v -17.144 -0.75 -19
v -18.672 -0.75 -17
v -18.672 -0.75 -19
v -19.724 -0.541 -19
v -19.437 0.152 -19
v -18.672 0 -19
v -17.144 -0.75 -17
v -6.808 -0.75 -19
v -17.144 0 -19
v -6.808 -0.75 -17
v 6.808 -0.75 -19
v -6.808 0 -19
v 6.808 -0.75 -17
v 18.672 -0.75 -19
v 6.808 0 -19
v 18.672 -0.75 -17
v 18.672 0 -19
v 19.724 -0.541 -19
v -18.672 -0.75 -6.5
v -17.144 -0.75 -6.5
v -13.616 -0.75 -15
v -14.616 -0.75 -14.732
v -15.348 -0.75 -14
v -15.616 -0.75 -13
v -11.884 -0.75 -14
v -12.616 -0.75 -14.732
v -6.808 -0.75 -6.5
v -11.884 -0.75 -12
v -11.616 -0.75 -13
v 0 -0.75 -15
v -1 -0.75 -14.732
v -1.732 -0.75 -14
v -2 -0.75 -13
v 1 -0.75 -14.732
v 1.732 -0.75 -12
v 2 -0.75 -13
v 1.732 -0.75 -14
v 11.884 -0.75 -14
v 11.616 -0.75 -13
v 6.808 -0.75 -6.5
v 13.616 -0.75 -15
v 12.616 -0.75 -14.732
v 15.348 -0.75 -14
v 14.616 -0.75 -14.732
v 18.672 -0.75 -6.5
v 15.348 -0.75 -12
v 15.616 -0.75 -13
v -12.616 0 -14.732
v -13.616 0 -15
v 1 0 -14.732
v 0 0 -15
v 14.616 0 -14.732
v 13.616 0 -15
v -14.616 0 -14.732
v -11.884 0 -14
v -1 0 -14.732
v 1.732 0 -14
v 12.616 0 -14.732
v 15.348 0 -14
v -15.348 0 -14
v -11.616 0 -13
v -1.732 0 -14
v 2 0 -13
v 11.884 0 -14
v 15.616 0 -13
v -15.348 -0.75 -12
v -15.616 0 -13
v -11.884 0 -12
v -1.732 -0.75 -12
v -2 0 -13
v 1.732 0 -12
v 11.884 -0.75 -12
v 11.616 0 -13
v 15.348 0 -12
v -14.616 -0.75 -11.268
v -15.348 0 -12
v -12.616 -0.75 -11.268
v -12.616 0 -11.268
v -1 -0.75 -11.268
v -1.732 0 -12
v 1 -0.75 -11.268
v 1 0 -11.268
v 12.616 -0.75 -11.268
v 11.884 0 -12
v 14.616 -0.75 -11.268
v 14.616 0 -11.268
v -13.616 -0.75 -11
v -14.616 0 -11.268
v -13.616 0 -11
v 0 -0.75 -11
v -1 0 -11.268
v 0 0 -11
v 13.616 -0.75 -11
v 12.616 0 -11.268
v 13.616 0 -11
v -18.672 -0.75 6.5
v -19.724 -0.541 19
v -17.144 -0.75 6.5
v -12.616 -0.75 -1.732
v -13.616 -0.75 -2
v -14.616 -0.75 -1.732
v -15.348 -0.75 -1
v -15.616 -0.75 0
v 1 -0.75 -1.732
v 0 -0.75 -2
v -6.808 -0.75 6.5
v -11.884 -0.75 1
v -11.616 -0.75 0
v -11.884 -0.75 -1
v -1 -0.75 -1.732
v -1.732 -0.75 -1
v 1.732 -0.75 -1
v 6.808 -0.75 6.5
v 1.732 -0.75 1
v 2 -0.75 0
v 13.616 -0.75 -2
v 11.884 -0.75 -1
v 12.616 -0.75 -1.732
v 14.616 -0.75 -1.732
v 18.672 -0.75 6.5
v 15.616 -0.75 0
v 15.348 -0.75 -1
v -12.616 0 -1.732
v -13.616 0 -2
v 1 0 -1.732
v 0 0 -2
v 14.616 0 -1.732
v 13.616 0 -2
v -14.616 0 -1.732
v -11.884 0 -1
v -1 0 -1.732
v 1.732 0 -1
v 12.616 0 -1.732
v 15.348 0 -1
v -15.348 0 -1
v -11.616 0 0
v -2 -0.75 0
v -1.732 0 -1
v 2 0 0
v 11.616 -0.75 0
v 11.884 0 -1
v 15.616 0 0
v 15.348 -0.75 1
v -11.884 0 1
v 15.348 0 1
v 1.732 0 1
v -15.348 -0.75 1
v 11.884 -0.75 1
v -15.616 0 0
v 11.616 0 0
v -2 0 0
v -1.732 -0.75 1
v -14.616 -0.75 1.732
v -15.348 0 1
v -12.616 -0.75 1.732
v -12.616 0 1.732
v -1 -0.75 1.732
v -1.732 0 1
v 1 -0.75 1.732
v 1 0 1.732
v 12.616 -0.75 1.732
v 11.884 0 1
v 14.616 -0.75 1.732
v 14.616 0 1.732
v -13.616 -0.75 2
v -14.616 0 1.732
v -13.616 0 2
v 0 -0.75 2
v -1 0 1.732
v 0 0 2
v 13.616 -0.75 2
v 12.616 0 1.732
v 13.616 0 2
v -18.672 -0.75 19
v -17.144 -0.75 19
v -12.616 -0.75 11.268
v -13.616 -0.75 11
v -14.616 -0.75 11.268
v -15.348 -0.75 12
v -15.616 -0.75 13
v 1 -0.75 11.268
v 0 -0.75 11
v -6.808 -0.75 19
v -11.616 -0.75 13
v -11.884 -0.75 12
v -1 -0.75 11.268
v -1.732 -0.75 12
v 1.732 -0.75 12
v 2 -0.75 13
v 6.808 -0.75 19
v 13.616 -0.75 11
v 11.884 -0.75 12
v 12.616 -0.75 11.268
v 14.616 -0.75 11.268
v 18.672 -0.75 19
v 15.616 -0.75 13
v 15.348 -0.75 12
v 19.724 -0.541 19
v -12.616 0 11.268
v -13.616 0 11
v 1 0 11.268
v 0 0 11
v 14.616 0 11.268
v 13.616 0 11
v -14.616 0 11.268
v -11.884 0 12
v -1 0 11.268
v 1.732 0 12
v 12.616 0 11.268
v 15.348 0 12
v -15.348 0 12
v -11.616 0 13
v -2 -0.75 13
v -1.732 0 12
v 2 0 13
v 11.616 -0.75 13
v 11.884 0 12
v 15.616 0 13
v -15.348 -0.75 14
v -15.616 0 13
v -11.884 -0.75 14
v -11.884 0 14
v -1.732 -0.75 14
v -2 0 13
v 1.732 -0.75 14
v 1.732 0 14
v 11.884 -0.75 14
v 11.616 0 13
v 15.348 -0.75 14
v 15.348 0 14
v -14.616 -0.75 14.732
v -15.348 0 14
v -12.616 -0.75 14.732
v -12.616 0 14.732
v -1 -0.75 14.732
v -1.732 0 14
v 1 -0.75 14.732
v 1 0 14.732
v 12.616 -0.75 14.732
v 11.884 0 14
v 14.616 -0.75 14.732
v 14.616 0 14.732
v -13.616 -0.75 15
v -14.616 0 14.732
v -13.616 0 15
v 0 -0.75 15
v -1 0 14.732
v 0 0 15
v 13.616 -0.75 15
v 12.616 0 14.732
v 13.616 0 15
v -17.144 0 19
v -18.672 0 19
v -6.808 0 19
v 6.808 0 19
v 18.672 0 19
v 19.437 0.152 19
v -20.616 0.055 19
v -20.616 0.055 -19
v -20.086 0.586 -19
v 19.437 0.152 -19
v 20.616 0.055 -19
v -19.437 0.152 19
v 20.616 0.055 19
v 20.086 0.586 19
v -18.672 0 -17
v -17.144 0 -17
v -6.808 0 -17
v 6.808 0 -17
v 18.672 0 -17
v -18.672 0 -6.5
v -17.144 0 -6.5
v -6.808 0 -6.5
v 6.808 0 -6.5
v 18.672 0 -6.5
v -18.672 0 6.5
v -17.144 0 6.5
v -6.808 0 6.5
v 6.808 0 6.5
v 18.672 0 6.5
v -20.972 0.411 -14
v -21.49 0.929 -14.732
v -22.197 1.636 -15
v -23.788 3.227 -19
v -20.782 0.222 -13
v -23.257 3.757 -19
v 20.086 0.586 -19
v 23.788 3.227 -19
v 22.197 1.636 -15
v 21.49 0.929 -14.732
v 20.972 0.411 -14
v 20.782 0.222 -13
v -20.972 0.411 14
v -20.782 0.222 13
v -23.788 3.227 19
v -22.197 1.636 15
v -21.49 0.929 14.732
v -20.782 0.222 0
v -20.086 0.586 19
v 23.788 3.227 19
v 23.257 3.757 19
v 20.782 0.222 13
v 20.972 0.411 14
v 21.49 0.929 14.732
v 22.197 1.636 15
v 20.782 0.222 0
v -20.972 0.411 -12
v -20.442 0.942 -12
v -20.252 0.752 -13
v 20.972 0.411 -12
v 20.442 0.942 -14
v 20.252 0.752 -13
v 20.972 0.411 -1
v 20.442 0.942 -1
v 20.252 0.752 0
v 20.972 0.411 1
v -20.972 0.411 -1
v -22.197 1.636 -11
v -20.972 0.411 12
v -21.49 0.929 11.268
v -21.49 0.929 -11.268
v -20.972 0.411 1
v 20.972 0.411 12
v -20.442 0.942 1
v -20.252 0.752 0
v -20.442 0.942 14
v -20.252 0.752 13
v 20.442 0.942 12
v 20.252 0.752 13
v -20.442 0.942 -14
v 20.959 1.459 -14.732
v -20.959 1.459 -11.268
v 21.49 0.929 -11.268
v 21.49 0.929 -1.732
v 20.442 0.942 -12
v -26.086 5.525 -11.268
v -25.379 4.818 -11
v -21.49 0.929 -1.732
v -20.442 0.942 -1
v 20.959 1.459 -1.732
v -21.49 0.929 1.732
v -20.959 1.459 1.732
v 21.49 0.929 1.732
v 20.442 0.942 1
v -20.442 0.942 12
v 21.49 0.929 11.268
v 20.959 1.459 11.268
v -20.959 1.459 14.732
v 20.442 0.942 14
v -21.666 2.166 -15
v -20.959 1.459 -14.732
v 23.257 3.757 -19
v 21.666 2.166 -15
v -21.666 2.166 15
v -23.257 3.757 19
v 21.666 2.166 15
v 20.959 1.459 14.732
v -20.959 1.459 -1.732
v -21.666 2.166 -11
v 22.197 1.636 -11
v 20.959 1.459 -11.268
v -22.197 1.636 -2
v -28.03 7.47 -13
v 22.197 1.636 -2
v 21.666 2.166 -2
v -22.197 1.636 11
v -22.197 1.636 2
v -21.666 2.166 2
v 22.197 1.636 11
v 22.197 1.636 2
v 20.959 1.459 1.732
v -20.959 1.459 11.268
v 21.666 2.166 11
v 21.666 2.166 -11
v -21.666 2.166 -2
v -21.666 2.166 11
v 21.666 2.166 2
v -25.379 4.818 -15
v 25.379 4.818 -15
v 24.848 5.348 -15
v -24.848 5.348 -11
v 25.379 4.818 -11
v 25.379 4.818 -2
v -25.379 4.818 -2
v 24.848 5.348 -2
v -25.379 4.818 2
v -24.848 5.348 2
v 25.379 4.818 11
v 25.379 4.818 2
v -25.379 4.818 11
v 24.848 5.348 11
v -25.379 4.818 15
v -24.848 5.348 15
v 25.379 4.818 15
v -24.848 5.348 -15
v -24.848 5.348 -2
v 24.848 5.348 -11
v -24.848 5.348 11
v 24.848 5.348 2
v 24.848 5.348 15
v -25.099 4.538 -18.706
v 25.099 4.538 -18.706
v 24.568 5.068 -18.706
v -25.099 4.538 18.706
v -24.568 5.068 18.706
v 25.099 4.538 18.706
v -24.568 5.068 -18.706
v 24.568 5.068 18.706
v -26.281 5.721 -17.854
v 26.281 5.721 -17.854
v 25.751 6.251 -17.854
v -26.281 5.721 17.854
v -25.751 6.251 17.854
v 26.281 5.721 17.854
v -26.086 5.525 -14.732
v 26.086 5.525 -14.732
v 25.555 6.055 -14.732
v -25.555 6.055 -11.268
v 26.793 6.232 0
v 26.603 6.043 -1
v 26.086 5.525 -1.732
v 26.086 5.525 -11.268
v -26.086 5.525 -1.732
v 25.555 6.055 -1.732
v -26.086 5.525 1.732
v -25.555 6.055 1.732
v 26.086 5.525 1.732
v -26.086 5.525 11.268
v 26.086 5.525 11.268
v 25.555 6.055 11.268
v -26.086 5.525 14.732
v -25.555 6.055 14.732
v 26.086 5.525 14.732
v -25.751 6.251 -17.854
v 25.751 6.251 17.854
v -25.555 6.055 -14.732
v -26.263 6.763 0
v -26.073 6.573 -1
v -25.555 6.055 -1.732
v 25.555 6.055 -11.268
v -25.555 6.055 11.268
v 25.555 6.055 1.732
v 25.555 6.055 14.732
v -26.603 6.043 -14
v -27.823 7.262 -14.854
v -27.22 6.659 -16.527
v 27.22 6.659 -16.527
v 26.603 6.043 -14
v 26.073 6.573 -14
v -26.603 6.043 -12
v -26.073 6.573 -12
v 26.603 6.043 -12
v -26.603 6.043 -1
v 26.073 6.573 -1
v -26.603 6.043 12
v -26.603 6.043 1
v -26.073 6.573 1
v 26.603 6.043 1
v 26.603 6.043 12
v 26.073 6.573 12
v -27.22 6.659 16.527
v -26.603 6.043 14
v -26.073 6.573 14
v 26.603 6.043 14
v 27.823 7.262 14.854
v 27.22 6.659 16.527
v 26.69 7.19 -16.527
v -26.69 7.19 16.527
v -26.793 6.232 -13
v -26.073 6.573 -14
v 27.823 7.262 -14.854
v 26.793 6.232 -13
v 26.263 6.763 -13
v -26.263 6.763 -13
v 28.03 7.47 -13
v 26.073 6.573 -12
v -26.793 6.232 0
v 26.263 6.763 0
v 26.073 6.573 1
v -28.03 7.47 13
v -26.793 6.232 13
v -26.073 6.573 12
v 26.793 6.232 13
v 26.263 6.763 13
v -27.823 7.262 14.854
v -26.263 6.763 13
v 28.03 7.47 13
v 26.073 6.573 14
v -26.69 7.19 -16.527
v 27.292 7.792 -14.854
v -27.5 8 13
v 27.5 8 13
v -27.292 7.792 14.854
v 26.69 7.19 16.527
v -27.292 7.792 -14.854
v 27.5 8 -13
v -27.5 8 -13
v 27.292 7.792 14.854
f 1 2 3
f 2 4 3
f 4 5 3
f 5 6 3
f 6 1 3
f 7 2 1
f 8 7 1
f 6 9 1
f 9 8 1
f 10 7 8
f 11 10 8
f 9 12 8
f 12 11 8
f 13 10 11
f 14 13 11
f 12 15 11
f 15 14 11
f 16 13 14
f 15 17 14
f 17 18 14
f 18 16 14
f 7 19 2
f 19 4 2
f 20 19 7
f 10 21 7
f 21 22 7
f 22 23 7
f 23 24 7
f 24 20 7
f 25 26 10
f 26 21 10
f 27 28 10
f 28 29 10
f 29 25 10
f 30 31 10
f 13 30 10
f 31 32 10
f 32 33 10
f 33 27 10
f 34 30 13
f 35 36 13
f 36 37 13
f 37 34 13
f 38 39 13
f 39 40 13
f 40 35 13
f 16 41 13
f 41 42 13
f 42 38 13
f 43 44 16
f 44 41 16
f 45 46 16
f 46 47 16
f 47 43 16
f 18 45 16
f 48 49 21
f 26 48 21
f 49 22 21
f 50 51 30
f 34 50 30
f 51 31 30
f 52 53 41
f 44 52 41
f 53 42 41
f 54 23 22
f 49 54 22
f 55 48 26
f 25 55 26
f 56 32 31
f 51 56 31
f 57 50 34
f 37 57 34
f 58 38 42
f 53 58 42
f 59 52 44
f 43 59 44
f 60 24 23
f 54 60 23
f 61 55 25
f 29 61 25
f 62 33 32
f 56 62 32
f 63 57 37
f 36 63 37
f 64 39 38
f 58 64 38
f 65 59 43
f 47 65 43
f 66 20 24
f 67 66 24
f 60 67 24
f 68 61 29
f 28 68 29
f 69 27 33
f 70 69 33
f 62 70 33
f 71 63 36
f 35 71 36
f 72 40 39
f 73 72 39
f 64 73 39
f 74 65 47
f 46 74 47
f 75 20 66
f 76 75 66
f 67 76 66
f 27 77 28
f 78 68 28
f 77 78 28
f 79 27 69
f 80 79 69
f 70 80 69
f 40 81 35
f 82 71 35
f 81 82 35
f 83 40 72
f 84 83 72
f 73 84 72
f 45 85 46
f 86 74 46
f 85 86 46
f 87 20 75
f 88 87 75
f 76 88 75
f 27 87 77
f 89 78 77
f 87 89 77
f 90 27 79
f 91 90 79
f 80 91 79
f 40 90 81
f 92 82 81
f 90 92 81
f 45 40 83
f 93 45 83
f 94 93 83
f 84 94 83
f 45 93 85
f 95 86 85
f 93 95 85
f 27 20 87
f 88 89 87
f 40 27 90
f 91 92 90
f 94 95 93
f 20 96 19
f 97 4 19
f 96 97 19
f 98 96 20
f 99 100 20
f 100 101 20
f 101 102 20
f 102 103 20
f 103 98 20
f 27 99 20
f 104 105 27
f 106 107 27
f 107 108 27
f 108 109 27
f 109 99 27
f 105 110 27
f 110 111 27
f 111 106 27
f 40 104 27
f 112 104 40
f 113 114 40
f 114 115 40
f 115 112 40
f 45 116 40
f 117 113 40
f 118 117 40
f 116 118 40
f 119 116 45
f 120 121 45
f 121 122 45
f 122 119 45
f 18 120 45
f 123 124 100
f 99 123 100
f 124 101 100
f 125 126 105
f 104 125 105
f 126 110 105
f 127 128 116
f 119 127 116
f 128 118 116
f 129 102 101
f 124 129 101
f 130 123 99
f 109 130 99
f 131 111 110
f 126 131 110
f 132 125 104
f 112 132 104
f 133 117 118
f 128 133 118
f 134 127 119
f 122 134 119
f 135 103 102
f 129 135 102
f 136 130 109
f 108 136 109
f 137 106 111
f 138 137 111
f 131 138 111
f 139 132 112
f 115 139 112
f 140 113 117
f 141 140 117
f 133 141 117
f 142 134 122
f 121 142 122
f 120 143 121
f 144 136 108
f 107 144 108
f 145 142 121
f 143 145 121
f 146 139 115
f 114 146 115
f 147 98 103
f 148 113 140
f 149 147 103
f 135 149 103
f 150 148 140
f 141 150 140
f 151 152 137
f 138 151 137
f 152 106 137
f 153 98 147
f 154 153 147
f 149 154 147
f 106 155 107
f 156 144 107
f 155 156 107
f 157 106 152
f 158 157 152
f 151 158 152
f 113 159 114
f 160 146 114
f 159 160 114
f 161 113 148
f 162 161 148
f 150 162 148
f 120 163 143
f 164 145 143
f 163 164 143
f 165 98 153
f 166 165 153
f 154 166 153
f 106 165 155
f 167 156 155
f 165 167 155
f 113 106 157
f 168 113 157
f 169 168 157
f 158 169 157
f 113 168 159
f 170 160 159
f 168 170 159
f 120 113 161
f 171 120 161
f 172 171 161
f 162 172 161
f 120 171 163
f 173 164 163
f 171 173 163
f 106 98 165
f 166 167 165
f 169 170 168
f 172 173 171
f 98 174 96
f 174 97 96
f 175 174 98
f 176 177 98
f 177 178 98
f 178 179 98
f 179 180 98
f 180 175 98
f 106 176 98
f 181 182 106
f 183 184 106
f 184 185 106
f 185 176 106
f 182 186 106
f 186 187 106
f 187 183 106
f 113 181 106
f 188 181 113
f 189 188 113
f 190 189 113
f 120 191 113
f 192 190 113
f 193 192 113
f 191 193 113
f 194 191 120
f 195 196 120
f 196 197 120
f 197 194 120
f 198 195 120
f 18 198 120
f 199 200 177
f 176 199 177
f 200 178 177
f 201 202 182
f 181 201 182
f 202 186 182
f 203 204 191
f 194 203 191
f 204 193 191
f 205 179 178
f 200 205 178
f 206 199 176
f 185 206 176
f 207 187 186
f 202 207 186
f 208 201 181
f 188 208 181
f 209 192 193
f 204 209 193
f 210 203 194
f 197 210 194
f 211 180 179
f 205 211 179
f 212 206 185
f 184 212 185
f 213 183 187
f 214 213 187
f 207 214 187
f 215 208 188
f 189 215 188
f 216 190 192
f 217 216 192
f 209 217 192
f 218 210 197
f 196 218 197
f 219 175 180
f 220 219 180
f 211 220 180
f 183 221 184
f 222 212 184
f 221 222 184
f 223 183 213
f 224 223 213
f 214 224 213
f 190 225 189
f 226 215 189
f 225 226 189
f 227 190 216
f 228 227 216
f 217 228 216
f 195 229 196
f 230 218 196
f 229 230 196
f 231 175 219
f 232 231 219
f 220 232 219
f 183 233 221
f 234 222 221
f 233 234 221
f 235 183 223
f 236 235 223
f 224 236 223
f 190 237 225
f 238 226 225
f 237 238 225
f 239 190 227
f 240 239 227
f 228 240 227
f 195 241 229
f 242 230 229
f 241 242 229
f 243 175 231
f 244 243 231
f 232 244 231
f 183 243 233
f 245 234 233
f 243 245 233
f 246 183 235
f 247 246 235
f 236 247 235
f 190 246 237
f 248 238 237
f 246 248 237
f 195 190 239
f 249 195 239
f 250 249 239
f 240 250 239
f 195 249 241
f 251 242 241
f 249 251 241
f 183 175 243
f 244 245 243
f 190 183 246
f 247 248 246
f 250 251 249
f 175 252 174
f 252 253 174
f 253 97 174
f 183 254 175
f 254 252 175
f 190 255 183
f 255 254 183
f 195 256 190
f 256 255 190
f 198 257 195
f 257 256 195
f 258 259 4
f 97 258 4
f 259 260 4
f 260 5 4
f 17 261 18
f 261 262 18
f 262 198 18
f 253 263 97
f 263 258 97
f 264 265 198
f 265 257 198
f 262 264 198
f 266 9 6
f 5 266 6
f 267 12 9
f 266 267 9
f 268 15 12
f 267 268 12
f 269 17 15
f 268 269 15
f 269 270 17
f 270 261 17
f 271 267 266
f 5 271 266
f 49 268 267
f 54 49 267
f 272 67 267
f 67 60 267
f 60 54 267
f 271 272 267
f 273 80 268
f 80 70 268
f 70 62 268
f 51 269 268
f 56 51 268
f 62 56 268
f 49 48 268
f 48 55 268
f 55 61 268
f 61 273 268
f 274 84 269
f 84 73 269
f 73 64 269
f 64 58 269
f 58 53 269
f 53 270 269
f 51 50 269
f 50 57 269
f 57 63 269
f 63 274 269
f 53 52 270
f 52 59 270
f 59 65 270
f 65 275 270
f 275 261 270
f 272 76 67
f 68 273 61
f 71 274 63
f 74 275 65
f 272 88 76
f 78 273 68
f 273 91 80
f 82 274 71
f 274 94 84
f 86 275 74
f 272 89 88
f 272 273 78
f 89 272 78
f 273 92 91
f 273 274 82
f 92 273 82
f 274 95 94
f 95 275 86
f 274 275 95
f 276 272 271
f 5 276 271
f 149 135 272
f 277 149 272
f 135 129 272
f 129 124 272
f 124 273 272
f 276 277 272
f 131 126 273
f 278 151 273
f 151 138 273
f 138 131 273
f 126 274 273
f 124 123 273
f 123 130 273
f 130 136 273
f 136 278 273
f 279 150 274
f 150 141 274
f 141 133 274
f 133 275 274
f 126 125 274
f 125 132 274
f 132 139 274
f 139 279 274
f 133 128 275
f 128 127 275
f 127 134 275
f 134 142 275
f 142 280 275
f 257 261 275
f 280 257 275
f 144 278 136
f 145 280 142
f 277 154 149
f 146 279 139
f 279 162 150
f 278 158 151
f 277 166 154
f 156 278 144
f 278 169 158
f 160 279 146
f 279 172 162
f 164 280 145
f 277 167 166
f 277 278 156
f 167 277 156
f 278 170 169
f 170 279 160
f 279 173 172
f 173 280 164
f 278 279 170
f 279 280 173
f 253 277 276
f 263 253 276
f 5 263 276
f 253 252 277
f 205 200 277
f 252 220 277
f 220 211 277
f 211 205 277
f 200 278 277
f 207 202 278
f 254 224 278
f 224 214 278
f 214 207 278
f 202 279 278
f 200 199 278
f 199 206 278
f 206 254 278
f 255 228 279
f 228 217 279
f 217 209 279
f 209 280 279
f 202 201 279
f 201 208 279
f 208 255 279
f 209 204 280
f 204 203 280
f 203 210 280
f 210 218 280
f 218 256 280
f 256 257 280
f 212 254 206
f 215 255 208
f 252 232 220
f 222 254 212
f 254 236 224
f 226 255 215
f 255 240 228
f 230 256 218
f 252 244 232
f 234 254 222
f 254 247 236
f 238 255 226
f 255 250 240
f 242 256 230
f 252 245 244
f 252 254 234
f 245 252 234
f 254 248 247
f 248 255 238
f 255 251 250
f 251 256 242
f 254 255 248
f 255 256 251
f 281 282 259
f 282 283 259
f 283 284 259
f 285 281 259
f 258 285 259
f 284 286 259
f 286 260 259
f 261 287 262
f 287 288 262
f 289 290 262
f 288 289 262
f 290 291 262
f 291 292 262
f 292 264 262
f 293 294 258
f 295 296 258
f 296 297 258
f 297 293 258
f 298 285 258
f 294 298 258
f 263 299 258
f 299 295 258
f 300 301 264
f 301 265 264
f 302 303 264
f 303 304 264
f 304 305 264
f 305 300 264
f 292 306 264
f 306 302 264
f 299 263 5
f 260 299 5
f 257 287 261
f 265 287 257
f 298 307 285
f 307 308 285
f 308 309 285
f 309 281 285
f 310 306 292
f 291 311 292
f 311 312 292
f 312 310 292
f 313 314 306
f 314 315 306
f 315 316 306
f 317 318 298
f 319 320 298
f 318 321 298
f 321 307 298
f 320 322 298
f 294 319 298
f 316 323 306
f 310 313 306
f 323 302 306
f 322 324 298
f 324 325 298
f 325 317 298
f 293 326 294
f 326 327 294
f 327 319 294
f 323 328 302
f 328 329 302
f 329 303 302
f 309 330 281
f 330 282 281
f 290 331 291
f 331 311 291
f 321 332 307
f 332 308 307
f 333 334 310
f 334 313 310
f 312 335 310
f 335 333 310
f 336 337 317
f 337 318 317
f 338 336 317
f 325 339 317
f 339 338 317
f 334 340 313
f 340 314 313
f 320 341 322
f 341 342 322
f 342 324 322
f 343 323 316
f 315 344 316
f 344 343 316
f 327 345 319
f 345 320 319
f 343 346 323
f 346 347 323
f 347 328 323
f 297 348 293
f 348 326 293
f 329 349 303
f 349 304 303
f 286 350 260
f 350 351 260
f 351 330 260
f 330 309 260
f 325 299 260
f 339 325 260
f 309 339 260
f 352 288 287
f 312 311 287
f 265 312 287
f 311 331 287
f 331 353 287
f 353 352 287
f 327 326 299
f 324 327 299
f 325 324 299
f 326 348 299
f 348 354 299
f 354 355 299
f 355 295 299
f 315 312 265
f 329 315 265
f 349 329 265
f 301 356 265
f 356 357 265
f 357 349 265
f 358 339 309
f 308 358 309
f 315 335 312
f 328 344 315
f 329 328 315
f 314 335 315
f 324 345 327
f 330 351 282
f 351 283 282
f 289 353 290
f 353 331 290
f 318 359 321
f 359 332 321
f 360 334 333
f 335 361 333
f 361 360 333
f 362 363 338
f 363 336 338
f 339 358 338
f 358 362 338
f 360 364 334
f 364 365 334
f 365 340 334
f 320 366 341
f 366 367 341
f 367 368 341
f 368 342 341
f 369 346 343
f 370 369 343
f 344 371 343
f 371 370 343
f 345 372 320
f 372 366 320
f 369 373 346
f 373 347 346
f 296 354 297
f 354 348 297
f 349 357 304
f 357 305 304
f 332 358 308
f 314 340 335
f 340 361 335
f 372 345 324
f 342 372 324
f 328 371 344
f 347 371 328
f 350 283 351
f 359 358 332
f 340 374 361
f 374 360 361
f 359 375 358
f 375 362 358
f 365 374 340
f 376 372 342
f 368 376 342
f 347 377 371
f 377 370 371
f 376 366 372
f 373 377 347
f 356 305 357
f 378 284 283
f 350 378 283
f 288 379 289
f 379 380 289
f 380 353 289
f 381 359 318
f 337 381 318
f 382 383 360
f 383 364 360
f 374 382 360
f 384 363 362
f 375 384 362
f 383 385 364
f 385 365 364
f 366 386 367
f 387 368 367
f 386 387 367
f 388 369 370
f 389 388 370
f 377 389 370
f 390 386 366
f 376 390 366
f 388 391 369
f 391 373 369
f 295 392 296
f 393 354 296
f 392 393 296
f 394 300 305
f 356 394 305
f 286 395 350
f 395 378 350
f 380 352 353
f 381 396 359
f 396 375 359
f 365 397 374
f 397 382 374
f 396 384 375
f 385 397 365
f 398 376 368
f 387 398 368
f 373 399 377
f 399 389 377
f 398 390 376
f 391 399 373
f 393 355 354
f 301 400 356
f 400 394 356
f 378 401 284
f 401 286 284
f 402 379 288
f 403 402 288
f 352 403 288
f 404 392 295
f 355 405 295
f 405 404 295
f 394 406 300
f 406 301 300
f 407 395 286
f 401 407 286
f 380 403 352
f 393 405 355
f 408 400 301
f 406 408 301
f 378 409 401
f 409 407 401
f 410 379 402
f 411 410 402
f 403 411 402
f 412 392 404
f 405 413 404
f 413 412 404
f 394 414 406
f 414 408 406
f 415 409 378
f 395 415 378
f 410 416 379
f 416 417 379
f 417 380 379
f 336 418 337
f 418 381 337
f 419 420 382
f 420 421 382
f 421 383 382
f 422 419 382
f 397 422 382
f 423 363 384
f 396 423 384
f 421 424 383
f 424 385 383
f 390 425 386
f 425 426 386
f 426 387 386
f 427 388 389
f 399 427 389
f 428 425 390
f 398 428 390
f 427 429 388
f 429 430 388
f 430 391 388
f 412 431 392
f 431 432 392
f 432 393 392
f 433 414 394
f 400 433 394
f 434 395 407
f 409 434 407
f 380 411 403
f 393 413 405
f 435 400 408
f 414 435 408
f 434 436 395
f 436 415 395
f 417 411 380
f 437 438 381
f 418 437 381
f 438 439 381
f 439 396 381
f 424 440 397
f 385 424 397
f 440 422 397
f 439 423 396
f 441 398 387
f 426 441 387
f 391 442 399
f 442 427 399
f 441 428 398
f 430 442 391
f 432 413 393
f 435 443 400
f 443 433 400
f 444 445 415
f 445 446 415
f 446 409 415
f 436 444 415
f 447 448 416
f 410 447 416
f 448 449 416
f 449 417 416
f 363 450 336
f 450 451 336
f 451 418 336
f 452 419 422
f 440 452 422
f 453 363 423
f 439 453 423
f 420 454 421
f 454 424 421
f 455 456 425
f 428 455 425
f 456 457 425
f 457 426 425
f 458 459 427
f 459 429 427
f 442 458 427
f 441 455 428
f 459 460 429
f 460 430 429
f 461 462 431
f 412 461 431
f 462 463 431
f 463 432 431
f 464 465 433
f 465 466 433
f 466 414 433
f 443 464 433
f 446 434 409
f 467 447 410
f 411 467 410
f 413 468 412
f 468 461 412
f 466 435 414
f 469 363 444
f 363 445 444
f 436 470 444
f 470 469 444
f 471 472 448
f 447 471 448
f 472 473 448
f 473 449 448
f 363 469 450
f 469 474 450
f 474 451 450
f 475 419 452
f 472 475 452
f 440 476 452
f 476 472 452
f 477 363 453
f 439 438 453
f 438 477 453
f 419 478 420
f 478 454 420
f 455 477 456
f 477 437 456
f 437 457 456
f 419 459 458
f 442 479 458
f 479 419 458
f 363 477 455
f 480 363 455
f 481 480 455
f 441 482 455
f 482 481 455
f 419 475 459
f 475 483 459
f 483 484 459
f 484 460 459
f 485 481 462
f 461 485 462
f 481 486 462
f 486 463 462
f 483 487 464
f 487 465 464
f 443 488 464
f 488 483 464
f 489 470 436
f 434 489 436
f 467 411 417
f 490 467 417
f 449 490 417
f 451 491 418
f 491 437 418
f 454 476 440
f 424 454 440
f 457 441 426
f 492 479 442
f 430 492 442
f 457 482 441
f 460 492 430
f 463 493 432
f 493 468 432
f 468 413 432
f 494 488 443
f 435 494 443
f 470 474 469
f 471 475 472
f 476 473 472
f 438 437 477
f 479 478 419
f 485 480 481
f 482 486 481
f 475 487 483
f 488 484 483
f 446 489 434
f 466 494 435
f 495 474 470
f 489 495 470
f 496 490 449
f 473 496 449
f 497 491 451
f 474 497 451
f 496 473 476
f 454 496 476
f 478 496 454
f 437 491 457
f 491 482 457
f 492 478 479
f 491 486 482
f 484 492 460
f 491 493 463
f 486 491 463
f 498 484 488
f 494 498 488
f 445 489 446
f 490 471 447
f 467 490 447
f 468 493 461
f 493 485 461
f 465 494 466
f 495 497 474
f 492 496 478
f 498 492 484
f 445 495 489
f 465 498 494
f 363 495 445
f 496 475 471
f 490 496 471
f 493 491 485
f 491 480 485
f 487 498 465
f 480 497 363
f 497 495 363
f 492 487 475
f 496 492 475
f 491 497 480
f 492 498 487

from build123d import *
from build123d.topology import SkipClean

# Parameters (mm, degrees)
ESTRUSIONE_SOTTILE1_DEPTH = 19
SCHIZZO2_R                = 2
TAGLIO_ESTRUSIONE2_DEPTH  = 10
TAGLIO_ESTRUSIONE3_DEPTH  = 10
RACCORDO1_R               = 6


with BuildPart() as part:
    # Schizzo1 → Estrusione-Sottile1 (new, symmetric)
    with BuildSketch(Plane.XY):
        with BuildLine():
            Line((-27.5, 8), (-20.085786438, 0.585786438))
            ThreePointArc((-20.085786438, 0.585786438), (-19.43693974, 0.152240935), (-18.671572875, 0))
            Line((-18.671572875, 0), (0, 0))
            Line((0, 0), (0, -0.75))
            Line((0, -0.75), (-18.671572875, -0.75))
            ThreePointArc((-18.671572875, -0.75), (-19.723952314, -0.540668714), (-20.616116524, 0.055456352))
            Line((-20.616116524, 0.055456352), (-28.030330086, 7.469669914))
            Line((-28.030330086, 7.469669914), (-27.5, 8))
        make_face()
    extrude(amount=ESTRUSIONE_SOTTILE1_DEPTH, both=True)

    # Schizzo2 → Taglio-Estrusione2 (cut)
    with BuildSketch(Plane.XZ.offset(0.75)):
        with Locations(Location((-13.616116524, -13, 0), (0, 0, 270))):
            Circle(SCHIZZO2_R)
        with Locations((0, -13)):
            Circle(SCHIZZO2_R)
        with Locations(Location((-13.616116524, 0, 0), (0, 0, 270))):
            Circle(SCHIZZO2_R)
        Circle(SCHIZZO2_R)
        with Locations((0, 13)):
            Circle(SCHIZZO2_R)
        with Locations(Location((-13.616116524, 13, 0), (0, 0, 270))):
            Circle(SCHIZZO2_R)
    extrude(amount=-TAGLIO_ESTRUSIONE2_DEPTH, mode=Mode.SUBTRACT)

    # Schizzo3 → Taglio-Estrusione3 (cut)
    with BuildSketch(Plane(origin=(-9.75, -9.75, 0), x_dir=(0, 0, -1), z_dir=(0.7071067811865487, 0.7071067811865465, 0))):
        with BuildLine():
            Line((-11, 21.352290732), (-11, 16.852290732))
            ThreePointArc((-11, 16.852290732), (-13, 14.852290732), (-15, 16.852290732))
            Line((-15, 16.852290732), (-15, 21.352290732))
            ThreePointArc((-15, 21.352290732), (-13, 23.352290732), (-11, 21.352290732))
        make_face()
        with BuildLine():
            Line((2, 21.352290732), (2, 16.852290732))
            ThreePointArc((2, 16.852290732), (0, 14.852290732), (-2, 16.852290732))
            Line((-2, 16.852290732), (-2, 21.352290732))
            ThreePointArc((-2, 21.352290732), (0, 23.352290732), (2, 21.352290732))
        make_face()
        with BuildLine():
            Line((11, 16.852290732), (11, 21.352290732))
            ThreePointArc((11, 21.352290732), (13, 23.352290732), (15, 21.352290732))
            Line((15, 21.352290732), (15, 16.852290732))
            ThreePointArc((15, 16.852290732), (13, 14.852290732), (11, 16.852290732))
        make_face()
    extrude(amount=-TAGLIO_ESTRUSIONE3_DEPTH, mode=Mode.SUBTRACT)

    # Raccordo1
    raccordo1_edges = [part.edges().sort_by_distance(p)[0] for p in [
        (-27.765165043, 7.734834957, 19),
        (-27.765165043, 7.734834957, -19),
    ]]
    fillet(raccordo1_edges, radius=RACCORDO1_R)

    # Specchia1: part across plane


with BuildPart() as part_1:
    with SkipClean():  # the faces are left unmerged after this step: merging them gives an invalid solid
        add(part.part)
        add(part.part.mirror(Plane(origin=(0, 0, 19), x_dir=(0, 0, 1), z_dir=(1, 0, 0))))


solid = part_1.part
